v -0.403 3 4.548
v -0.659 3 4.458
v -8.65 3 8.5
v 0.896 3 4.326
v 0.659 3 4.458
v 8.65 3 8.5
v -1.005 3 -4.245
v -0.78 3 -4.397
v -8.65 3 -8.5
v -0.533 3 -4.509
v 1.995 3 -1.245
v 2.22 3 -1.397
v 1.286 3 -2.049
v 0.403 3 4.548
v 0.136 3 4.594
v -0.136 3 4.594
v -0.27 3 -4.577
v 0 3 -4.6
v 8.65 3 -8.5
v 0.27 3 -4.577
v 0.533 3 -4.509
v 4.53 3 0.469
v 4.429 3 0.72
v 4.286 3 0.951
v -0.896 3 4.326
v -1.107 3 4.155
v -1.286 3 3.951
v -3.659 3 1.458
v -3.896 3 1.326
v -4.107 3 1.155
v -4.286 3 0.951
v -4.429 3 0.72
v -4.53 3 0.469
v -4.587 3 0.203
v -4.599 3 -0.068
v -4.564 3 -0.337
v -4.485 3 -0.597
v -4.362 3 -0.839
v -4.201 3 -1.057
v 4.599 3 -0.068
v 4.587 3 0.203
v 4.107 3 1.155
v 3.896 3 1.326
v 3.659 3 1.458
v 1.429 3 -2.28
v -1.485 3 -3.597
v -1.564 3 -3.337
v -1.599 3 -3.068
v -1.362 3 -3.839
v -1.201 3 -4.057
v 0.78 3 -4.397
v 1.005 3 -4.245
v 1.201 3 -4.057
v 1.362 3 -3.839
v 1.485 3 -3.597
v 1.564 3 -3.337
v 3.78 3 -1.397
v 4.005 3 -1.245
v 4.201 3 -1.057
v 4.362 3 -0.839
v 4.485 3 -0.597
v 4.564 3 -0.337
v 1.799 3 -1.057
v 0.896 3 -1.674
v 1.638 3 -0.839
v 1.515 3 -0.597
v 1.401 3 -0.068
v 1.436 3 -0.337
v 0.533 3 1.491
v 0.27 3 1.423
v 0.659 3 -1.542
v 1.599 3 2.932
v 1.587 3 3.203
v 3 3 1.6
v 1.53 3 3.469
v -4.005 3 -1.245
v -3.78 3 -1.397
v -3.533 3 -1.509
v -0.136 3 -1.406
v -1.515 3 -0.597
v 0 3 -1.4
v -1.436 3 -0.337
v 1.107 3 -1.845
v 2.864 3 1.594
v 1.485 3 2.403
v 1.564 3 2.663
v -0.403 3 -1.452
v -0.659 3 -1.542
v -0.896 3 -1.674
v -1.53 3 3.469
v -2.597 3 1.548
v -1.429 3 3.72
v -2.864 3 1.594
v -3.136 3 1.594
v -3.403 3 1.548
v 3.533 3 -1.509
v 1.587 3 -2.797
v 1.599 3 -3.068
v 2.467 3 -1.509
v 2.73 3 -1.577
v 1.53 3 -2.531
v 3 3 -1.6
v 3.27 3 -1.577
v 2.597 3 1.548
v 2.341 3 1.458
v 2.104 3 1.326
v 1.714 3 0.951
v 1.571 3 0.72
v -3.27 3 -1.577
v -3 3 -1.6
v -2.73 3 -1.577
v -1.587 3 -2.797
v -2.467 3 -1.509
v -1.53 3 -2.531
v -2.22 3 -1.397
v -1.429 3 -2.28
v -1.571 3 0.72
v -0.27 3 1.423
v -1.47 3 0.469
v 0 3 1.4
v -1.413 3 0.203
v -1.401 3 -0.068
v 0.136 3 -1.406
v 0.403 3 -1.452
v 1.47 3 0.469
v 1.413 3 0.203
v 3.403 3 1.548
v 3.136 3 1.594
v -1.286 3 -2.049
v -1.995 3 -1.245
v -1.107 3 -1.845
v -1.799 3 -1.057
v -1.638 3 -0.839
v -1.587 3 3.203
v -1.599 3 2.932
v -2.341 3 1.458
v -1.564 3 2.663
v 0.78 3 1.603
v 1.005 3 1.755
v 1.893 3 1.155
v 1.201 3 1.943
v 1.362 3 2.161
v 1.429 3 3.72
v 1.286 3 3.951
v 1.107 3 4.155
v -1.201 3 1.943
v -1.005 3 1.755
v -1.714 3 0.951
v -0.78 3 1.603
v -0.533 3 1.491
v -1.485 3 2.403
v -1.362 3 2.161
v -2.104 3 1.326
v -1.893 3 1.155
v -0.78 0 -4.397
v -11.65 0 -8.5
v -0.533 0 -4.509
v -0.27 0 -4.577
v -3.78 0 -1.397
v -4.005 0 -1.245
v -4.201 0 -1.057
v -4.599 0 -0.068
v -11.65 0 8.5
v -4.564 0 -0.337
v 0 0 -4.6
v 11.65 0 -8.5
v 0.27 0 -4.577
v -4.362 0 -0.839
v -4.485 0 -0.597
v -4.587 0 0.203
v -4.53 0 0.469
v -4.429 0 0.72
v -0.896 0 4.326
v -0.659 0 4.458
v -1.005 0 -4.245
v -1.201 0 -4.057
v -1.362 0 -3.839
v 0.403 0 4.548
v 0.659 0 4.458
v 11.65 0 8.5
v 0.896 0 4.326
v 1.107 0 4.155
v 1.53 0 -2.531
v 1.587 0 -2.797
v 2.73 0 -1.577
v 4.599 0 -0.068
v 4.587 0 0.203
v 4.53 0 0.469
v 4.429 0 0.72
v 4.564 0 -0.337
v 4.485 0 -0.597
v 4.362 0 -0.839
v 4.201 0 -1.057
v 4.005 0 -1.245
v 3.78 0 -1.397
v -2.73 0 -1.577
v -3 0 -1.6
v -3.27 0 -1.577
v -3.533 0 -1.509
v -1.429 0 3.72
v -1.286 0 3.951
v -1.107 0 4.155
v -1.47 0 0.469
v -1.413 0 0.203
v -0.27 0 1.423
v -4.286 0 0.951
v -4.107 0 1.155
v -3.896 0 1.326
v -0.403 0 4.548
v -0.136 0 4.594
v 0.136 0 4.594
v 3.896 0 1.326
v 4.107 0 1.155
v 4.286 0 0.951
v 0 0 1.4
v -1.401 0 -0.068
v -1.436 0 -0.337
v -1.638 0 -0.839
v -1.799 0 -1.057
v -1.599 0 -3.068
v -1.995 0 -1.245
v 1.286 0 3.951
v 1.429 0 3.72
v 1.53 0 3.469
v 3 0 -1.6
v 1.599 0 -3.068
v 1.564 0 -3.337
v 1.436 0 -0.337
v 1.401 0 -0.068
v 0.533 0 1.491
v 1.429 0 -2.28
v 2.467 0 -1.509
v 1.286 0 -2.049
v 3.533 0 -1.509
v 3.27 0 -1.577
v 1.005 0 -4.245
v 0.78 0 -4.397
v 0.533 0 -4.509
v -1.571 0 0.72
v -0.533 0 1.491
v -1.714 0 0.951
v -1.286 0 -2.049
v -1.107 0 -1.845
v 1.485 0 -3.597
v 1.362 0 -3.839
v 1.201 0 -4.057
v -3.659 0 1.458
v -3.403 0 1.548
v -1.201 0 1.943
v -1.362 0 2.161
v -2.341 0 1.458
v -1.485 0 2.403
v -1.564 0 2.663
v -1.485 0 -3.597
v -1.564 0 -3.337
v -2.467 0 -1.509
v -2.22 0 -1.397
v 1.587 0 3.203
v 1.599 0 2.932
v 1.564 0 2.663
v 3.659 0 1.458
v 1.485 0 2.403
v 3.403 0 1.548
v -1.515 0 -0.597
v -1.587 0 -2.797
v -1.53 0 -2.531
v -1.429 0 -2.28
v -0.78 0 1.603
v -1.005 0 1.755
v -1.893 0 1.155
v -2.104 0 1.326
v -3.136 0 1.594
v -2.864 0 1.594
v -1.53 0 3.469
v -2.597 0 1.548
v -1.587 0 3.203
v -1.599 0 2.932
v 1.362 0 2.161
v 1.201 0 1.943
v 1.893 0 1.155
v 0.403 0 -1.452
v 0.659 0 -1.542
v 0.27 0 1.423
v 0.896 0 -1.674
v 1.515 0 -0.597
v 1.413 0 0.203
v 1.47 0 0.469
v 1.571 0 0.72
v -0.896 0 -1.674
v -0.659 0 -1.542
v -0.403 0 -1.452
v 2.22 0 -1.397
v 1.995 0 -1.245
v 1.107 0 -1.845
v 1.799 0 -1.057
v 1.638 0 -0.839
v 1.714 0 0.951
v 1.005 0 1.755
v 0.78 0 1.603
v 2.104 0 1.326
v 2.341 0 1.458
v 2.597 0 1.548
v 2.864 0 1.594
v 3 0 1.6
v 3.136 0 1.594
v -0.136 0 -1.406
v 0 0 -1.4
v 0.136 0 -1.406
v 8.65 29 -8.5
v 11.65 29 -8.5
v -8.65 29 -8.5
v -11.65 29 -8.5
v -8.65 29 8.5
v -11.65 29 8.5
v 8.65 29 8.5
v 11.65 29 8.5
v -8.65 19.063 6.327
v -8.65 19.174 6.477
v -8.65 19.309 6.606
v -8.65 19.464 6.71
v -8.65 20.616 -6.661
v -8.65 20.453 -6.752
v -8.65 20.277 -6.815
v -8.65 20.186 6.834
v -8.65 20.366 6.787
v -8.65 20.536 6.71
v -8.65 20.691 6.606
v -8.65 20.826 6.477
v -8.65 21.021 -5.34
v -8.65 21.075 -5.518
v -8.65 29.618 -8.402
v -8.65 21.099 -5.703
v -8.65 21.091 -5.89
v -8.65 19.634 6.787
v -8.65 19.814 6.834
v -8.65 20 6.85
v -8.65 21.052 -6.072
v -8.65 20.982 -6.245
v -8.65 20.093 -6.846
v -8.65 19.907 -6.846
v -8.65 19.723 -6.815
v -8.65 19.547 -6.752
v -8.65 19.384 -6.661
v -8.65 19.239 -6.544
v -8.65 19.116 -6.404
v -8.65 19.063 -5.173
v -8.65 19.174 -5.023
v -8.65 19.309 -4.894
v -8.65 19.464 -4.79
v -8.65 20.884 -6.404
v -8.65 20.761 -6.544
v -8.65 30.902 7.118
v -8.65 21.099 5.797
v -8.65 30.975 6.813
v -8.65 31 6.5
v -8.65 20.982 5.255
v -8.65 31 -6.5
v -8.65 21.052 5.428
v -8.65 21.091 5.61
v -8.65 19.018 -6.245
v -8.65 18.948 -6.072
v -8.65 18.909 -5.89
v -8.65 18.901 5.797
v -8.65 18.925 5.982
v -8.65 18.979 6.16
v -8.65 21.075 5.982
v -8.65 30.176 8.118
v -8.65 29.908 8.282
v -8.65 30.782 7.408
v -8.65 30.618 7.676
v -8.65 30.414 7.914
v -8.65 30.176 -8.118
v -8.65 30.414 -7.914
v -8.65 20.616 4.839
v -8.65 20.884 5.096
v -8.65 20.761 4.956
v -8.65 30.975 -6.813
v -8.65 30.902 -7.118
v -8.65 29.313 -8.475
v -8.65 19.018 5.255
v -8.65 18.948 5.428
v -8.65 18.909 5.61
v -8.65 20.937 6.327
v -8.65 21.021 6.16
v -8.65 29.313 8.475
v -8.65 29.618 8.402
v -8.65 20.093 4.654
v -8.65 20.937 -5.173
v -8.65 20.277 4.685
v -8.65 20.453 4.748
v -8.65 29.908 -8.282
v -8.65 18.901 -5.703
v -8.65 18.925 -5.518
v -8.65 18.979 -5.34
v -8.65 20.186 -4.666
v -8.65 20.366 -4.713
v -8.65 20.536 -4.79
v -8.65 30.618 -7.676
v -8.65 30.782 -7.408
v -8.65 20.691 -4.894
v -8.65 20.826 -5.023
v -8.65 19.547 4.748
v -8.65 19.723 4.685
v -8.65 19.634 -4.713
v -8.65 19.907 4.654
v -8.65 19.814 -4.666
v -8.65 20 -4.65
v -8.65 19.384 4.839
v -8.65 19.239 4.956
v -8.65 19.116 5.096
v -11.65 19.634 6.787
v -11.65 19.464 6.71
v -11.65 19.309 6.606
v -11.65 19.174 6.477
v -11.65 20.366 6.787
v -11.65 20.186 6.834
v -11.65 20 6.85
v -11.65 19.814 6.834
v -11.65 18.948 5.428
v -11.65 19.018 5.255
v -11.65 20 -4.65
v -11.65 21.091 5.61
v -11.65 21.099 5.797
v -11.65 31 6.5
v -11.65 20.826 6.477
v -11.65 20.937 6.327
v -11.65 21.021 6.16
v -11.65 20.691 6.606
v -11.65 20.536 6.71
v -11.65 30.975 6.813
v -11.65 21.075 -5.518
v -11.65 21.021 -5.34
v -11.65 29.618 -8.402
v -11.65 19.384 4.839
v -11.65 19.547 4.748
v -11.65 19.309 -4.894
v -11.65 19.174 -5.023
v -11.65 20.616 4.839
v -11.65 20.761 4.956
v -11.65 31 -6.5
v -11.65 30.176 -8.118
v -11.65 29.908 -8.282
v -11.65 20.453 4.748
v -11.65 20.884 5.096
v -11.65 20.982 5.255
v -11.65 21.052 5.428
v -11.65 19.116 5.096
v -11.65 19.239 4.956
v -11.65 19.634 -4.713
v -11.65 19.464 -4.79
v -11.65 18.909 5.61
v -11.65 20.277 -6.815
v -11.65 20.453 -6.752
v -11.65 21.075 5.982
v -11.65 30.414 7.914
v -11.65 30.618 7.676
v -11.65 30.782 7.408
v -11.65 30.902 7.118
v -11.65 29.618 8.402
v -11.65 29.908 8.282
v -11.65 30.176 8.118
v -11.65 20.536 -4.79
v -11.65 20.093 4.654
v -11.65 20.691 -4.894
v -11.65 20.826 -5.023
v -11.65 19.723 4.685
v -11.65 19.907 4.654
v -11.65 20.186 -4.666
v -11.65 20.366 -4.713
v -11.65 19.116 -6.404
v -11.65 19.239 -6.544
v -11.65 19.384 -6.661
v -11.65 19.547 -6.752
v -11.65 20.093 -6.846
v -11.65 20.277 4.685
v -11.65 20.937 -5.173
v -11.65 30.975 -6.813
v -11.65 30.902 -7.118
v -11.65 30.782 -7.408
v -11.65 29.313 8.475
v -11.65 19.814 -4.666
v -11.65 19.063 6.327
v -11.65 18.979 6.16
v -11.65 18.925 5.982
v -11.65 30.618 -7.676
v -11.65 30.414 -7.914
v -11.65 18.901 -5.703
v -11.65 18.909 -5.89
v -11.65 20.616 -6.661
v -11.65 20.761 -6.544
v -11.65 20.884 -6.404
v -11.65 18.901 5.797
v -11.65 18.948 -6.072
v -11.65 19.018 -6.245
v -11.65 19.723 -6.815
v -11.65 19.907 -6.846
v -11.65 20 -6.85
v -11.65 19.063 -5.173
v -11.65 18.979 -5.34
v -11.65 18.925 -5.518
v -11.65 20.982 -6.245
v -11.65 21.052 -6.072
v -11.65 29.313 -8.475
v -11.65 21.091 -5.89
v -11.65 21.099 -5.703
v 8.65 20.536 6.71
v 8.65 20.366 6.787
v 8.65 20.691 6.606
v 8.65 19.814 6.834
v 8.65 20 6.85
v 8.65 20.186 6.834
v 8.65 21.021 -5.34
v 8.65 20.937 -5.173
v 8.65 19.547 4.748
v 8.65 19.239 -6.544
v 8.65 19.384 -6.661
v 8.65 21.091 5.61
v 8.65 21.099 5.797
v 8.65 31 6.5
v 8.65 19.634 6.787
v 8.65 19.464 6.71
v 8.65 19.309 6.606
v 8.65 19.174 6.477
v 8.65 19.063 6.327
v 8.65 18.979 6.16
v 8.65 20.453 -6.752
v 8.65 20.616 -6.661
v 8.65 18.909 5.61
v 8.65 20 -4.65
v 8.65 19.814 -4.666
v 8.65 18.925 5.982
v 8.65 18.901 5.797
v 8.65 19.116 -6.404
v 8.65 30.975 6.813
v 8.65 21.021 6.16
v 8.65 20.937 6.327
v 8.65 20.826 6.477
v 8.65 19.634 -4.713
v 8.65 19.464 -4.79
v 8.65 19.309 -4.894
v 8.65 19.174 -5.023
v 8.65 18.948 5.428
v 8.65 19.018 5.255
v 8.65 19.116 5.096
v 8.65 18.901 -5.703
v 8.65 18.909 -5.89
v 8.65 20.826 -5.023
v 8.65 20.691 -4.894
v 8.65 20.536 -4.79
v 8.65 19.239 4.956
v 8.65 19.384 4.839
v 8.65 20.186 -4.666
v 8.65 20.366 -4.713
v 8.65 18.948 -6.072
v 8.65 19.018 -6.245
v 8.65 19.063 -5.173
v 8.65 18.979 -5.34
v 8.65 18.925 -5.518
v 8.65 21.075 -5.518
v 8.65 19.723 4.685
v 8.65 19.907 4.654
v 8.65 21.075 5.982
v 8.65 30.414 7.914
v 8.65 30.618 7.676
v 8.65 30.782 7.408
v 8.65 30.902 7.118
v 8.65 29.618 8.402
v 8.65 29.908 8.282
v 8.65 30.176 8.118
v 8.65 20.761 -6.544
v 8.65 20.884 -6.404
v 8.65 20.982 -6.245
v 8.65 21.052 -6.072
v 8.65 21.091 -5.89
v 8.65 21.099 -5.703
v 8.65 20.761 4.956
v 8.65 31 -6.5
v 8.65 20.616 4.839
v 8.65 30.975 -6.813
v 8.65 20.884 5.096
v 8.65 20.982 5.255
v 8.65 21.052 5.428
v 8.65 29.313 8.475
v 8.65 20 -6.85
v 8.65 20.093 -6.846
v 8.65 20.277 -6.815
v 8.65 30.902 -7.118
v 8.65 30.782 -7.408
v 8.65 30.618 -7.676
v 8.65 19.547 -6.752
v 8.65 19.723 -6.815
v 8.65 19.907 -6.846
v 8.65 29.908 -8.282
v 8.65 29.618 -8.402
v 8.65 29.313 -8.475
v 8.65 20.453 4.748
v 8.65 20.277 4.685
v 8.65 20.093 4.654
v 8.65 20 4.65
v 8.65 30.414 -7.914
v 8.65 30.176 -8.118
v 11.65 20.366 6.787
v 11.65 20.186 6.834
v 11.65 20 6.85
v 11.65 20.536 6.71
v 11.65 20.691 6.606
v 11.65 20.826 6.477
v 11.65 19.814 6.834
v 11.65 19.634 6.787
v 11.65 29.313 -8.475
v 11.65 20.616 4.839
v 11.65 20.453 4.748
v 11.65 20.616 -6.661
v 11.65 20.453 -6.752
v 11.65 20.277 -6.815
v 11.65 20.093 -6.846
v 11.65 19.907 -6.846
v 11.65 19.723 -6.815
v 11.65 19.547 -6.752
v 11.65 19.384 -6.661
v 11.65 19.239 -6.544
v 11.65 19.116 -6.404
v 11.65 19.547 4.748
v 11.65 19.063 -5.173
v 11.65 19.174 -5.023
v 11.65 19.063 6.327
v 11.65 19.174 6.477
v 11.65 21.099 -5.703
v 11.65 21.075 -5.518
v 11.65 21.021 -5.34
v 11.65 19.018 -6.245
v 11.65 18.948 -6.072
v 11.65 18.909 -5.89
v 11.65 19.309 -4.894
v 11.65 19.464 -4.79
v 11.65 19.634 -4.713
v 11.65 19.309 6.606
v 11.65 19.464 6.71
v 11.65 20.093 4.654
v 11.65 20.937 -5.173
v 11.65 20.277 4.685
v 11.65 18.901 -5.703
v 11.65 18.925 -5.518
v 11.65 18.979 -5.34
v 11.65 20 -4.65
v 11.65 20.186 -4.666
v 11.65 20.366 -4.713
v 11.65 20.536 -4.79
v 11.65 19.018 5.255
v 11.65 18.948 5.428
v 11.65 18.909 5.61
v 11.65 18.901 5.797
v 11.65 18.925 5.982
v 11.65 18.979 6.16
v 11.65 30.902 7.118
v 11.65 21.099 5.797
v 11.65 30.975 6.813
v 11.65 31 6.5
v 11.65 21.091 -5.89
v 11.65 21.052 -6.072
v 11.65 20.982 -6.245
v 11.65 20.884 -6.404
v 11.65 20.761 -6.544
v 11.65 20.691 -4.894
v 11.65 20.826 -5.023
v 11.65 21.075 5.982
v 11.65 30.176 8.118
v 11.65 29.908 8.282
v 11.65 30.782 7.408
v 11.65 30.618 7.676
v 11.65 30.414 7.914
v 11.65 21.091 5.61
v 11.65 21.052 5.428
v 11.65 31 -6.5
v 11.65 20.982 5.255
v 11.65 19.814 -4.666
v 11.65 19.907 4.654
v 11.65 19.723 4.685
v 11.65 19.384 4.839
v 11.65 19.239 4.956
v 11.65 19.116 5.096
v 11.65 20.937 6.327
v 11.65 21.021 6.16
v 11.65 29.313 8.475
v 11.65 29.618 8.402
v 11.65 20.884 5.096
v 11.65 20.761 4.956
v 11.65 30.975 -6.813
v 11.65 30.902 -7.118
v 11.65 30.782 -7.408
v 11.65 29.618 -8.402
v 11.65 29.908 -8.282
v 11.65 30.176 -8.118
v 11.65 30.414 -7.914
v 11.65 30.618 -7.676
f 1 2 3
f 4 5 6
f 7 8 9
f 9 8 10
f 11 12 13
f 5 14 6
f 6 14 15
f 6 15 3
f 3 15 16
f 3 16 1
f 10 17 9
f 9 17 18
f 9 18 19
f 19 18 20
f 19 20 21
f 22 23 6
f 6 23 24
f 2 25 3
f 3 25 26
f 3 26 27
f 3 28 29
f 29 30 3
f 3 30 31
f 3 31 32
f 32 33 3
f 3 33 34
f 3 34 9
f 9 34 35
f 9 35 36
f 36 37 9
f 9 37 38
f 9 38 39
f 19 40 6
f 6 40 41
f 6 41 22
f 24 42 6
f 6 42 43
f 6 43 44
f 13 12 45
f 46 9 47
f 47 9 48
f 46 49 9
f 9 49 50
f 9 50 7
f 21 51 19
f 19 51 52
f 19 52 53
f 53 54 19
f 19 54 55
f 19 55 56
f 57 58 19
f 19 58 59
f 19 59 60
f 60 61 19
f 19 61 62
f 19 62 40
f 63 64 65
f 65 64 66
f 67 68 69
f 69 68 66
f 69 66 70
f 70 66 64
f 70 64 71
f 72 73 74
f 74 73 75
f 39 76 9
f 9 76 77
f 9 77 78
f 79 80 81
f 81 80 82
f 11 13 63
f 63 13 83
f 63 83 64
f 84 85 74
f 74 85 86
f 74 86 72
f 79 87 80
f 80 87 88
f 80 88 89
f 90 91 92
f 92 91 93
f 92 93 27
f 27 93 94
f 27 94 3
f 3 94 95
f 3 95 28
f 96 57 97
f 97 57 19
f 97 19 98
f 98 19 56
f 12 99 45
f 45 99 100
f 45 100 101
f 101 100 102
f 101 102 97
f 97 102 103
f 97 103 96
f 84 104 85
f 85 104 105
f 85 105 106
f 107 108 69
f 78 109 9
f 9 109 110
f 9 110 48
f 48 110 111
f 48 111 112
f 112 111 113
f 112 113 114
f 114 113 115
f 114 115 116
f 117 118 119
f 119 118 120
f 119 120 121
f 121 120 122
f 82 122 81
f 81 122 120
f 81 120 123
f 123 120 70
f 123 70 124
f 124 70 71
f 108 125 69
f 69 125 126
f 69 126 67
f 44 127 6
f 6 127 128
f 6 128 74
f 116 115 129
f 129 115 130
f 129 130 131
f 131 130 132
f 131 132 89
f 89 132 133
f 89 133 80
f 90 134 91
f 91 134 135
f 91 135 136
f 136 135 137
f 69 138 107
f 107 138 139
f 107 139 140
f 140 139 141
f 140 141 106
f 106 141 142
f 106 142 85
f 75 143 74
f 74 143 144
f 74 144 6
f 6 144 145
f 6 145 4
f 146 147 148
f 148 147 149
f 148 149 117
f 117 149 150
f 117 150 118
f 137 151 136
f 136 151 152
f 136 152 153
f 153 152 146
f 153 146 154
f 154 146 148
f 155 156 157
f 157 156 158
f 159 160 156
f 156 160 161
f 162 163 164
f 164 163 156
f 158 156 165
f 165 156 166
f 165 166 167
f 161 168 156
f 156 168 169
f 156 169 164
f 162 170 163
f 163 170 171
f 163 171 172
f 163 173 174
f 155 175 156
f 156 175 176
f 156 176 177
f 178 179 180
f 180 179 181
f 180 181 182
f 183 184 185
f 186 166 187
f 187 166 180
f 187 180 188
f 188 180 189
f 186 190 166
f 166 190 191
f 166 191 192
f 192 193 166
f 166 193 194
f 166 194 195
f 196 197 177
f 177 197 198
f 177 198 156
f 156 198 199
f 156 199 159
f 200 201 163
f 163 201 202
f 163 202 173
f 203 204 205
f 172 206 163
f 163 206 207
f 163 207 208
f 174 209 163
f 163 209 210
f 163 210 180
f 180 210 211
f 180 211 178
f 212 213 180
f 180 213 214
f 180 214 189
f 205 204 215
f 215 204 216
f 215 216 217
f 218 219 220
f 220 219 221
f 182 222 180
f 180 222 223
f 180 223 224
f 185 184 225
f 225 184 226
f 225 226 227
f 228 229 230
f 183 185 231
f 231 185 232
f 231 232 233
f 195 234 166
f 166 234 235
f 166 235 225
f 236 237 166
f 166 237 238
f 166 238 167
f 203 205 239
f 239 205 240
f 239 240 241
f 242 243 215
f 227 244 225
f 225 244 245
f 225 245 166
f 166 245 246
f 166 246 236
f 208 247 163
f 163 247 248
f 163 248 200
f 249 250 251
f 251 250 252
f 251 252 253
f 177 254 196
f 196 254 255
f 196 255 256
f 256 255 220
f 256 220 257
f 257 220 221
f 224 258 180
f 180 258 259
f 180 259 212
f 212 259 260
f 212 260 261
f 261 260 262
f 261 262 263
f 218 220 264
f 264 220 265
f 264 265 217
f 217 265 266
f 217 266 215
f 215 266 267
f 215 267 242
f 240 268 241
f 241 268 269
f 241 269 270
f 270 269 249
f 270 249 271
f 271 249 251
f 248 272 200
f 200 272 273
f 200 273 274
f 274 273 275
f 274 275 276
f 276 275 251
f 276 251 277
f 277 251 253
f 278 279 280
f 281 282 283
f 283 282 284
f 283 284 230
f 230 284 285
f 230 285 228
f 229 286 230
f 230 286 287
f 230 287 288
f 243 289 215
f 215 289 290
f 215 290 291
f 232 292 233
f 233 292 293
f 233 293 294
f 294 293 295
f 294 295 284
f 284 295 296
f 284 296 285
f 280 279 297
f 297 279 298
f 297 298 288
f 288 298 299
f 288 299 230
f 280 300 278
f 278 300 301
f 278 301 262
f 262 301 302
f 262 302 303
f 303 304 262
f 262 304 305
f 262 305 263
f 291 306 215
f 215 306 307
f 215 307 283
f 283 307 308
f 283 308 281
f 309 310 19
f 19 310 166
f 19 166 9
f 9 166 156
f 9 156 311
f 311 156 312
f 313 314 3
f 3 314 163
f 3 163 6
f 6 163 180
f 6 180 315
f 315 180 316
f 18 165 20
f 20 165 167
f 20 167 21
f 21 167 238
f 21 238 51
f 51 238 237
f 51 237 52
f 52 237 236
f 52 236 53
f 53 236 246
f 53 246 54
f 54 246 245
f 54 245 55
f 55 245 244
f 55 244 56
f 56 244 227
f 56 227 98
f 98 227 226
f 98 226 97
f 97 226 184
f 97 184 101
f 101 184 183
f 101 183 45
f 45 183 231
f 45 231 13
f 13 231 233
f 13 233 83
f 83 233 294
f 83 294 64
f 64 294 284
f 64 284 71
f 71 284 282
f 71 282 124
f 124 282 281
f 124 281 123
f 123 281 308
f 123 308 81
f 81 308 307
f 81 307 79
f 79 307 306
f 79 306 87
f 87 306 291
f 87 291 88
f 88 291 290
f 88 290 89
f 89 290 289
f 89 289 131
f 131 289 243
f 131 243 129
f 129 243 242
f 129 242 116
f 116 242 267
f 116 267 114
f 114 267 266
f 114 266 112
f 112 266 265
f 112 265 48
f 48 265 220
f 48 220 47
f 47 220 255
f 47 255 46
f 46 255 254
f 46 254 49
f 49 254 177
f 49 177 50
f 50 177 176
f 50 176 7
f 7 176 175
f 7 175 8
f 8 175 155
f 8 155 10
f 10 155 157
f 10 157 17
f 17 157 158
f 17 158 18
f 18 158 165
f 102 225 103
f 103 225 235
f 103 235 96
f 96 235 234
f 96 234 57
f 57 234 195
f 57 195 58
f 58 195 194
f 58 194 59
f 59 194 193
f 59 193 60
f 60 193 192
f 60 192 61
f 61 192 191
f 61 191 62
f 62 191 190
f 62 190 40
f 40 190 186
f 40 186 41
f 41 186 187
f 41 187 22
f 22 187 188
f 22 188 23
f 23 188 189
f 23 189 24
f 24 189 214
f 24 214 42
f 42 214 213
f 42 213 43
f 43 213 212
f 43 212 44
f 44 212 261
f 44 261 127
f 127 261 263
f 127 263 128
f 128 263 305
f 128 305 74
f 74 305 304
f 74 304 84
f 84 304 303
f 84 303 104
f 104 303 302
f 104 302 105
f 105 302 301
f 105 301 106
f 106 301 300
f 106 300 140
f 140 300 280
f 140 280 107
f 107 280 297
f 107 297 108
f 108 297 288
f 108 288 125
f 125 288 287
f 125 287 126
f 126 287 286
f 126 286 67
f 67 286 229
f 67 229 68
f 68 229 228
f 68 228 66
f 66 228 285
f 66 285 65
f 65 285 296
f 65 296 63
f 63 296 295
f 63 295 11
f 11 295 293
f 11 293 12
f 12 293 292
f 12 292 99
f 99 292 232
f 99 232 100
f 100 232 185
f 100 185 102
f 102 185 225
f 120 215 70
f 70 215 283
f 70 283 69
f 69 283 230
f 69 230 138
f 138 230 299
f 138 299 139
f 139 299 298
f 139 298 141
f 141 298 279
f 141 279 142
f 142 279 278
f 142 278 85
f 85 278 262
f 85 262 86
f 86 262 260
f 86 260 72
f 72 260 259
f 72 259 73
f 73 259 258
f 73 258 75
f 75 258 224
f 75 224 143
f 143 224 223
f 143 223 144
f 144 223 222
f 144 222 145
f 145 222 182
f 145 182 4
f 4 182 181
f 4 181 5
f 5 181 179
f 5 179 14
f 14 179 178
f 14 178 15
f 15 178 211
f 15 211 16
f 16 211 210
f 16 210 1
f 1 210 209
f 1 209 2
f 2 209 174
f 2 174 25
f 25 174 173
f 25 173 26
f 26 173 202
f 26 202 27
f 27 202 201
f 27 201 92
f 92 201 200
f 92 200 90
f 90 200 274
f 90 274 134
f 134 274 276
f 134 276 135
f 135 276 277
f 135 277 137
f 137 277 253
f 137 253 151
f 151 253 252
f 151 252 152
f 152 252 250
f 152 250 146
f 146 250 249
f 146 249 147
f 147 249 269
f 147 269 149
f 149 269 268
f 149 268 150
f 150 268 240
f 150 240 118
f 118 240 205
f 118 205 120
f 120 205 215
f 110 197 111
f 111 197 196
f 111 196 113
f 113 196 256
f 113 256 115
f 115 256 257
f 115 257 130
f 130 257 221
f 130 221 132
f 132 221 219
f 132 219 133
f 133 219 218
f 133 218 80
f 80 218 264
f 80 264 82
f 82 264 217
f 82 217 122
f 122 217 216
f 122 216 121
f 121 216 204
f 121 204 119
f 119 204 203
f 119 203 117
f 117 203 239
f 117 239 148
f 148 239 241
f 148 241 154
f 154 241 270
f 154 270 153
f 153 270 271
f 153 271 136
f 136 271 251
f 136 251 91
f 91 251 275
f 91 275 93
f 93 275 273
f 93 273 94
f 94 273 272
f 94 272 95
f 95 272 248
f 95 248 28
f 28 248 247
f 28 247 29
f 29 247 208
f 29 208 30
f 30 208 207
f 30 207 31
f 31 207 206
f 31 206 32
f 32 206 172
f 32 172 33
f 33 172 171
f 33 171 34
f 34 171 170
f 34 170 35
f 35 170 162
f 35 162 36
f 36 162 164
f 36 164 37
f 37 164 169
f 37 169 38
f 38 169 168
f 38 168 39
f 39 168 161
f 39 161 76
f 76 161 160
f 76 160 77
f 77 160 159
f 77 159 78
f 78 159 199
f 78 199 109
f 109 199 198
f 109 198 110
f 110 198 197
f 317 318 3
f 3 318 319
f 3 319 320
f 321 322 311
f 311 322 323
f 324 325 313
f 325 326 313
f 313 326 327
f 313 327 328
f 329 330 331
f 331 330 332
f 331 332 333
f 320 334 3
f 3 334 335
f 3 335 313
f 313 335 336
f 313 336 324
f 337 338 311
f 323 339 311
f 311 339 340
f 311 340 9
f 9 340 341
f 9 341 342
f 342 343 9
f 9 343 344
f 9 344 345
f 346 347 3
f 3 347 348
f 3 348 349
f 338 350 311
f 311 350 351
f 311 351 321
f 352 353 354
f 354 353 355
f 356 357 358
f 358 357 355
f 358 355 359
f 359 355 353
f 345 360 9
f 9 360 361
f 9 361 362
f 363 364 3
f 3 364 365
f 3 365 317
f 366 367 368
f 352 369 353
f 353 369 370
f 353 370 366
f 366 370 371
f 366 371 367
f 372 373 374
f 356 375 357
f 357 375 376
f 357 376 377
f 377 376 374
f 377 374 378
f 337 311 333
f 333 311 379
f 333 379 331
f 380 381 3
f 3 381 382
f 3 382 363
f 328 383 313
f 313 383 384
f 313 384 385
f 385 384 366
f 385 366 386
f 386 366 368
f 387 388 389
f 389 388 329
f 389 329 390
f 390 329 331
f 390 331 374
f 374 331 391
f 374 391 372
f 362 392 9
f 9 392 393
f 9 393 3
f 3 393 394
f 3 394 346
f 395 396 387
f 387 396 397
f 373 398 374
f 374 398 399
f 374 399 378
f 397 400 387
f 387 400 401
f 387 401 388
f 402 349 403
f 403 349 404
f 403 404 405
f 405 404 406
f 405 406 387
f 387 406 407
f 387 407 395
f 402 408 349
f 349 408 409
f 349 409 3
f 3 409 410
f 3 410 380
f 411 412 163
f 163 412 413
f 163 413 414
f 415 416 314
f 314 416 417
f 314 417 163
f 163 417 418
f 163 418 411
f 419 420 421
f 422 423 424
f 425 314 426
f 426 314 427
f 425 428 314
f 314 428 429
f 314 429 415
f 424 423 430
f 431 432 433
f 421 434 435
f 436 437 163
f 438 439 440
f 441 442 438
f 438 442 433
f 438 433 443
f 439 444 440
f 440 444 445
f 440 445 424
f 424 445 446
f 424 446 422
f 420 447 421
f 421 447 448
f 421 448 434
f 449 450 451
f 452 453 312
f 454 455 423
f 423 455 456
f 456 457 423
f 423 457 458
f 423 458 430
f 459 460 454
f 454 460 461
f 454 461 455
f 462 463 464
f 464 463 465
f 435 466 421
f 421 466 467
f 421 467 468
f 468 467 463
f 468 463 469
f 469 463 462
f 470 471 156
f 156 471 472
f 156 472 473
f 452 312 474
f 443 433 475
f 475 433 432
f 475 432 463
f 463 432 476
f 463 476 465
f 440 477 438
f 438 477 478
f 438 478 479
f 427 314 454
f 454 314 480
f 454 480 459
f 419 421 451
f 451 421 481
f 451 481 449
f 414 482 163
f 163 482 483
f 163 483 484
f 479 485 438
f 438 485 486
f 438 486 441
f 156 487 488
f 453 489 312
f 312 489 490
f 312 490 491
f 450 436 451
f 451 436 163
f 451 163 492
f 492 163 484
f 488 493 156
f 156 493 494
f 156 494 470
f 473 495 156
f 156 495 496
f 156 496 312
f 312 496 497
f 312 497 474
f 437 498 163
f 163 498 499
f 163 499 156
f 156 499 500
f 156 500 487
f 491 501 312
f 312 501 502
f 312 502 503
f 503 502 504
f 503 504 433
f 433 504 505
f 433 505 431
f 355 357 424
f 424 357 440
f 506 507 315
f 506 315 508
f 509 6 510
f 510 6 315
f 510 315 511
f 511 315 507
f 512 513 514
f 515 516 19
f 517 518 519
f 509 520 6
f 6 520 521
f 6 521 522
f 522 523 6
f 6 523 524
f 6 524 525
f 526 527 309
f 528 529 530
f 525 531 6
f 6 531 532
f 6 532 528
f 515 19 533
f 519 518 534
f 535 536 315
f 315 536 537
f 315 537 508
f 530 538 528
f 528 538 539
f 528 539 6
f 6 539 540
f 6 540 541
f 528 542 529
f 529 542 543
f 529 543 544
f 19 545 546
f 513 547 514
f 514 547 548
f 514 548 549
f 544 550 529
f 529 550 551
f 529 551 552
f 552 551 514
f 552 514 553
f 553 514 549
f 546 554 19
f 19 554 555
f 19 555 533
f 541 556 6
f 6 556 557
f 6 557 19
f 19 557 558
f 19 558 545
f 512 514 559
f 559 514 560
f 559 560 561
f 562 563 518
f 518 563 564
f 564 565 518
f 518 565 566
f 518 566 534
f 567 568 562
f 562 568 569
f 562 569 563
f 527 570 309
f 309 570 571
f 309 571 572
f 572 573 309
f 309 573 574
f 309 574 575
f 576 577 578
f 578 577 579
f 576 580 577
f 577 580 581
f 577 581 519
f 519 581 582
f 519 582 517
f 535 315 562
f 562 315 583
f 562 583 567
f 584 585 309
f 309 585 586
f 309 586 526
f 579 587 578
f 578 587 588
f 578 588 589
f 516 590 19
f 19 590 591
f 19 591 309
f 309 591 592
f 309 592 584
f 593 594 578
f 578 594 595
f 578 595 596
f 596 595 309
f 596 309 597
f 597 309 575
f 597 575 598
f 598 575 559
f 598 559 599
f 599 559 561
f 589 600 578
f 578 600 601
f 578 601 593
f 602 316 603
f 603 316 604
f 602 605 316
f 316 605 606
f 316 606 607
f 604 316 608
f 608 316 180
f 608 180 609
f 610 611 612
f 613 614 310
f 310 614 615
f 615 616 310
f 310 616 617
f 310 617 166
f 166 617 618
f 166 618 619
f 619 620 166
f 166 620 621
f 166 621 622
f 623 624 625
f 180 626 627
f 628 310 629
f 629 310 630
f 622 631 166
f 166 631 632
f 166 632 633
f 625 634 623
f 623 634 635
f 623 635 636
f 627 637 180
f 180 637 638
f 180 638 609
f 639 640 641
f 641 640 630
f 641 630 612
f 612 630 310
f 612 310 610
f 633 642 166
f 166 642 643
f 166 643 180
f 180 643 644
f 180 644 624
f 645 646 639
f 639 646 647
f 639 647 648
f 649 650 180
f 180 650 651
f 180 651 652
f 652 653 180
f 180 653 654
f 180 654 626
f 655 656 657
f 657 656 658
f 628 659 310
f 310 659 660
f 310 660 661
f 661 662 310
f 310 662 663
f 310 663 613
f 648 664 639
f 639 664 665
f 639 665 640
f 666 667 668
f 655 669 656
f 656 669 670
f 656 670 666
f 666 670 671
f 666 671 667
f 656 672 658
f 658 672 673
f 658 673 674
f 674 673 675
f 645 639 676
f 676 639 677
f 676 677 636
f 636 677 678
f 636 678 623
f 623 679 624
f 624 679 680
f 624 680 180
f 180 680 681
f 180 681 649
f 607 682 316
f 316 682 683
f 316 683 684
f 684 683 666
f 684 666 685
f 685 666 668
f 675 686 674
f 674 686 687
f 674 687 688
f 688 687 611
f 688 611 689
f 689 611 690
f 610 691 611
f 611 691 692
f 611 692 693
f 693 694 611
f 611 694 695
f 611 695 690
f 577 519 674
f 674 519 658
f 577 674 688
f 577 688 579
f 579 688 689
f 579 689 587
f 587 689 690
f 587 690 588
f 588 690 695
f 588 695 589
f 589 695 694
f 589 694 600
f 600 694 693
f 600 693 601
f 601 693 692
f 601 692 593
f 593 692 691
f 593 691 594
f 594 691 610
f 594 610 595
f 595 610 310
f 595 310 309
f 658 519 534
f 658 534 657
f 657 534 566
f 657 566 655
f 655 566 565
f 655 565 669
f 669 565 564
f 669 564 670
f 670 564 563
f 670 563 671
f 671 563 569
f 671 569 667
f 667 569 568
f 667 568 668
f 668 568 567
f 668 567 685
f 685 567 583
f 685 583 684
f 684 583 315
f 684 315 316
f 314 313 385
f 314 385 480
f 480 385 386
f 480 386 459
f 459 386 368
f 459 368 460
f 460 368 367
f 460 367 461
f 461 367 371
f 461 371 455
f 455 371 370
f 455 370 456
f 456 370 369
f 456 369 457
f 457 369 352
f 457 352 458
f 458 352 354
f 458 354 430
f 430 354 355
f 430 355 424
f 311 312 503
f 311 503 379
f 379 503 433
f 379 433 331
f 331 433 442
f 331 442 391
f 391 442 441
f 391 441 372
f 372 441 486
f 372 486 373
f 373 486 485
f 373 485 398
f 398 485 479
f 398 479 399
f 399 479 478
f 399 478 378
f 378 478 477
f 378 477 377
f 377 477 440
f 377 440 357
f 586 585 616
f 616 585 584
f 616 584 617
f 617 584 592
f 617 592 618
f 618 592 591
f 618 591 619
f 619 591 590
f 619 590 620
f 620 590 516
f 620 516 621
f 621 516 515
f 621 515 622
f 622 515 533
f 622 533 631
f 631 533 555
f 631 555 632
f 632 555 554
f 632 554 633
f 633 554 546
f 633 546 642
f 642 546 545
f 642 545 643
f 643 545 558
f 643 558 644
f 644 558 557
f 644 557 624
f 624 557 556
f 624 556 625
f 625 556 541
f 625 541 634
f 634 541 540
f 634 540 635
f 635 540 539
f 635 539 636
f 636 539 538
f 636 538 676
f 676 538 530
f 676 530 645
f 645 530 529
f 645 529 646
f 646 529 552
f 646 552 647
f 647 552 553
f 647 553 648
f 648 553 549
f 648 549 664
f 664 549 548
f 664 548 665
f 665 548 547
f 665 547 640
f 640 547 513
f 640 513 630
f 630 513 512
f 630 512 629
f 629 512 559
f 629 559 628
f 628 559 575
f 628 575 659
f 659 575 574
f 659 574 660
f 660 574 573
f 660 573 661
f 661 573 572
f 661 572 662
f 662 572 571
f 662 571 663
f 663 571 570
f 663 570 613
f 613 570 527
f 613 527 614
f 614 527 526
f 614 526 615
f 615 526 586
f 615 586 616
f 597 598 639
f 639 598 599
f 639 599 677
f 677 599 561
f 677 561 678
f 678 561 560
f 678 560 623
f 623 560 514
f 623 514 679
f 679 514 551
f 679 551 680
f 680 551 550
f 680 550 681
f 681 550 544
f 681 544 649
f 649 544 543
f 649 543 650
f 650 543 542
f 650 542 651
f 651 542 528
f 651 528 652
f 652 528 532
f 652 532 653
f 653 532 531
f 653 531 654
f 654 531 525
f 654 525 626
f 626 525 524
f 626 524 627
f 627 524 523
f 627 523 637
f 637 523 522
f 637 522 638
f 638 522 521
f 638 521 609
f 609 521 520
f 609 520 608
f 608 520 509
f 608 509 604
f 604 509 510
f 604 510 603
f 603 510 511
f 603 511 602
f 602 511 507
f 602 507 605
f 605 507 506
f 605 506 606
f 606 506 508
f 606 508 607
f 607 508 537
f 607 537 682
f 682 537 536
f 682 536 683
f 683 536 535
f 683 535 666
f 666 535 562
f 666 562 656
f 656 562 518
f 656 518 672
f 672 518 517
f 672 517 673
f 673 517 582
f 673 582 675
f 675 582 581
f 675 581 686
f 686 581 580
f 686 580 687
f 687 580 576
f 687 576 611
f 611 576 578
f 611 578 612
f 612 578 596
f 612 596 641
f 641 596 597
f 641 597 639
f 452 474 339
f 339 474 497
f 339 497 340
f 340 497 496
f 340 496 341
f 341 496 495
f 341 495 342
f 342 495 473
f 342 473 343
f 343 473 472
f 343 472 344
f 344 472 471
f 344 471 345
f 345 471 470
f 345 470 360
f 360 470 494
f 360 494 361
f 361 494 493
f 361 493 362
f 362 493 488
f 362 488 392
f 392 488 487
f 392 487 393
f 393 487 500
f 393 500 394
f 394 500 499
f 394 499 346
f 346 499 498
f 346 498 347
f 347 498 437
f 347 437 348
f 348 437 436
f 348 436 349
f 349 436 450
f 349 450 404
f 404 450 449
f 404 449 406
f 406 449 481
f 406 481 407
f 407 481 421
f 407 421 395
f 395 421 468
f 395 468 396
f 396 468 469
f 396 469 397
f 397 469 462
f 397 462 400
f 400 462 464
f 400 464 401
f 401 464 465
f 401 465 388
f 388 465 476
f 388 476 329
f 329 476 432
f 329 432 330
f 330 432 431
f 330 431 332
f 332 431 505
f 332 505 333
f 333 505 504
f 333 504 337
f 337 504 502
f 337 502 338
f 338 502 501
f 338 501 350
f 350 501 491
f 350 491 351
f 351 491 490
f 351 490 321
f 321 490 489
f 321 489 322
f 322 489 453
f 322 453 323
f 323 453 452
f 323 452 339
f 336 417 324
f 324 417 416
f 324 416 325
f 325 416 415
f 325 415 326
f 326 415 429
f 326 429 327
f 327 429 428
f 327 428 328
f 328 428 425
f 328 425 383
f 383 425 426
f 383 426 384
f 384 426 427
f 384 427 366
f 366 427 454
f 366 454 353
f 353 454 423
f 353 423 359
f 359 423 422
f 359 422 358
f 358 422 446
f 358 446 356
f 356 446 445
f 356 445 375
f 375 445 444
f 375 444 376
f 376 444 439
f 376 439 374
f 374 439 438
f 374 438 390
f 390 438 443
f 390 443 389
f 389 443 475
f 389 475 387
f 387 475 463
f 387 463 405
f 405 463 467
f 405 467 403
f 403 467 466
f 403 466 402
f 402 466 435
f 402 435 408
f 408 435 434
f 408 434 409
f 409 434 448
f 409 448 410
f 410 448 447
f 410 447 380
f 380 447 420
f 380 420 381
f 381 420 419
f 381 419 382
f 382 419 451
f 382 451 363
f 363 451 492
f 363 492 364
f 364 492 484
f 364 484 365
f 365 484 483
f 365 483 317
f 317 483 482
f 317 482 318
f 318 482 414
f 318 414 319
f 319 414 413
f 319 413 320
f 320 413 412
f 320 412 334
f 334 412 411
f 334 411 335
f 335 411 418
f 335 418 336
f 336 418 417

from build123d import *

# Parameters (mm, degrees)
SKETCH_1_W          = 17.3
SKETCH_1_H          = 17
SKETCH_1_R          = 1.6
EXTRUDE_1_DEPTH     = 3
SKETCH_2_W          = 3
SKETCH_2_H          = 17
EXTRUDE_2_DEPTH     = 31
FILLET_1_R          = 2
SKETCH_3_R          = 1.1
CUT_EXTRUDE_1_DEPTH = 28


with BuildPart() as part:
    # 草图1 → 凸台-拉伸1 (new body)
    with BuildSketch(Plane(origin=(0, 0, 0), x_dir=(1, 0, 0), z_dir=(0, 1, 0))):
        Rectangle(SKETCH_1_W, SKETCH_1_H)
        with Locations(Location((0, 3, 0), (0, 0, 270))):
            Circle(SKETCH_1_R, mode=Mode.SUBTRACT)
        with Locations(Location((3, 0, 0), (0, 0, 270))):
            Circle(SKETCH_1_R, mode=Mode.SUBTRACT)
        with Locations(Location((0, -3, 0), (0, 0, 90))):
            Circle(SKETCH_1_R, mode=Mode.SUBTRACT)
        with Locations(Location((-3, 0, 0), (0, 0, 90))):
            Circle(SKETCH_1_R, mode=Mode.SUBTRACT)
    extrude(amount=EXTRUDE_1_DEPTH)

    # 草图2 → 凸台-拉伸2 (add)
    with BuildSketch(Plane(origin=(0, 0, 0), x_dir=(1, 0, 0), z_dir=(0, 1, 0))):
        with Locations((10.15, 0)):
            Rectangle(SKETCH_2_W, SKETCH_2_H)
        with Locations((-10.15, 0)):
            Rectangle(SKETCH_2_W, SKETCH_2_H)
    extrude(amount=EXTRUDE_2_DEPTH)

    # 圆角1
    fillet_1_edges = [part.edges().sort_by_distance(p)[0] for p in [
        (-10.15, 31, -8.5),
        (-10.15, 31, 8.5),
        (10.15, 31, 8.5),
        (10.15, 31, -8.5),
    ]]
    fillet(fillet_1_edges, radius=FILLET_1_R)

    # 草图3 → 切除-拉伸1 (cut)
    with BuildSketch(Plane.ZY.offset(11.65)):
        with Locations((5.75, 20)):
            Circle(SKETCH_3_R)
        with Locations((-5.75, 20)):
            Circle(SKETCH_3_R)
    extrude(amount=-CUT_EXTRUDE_1_DEPTH, mode=Mode.SUBTRACT)


solid = part.part
